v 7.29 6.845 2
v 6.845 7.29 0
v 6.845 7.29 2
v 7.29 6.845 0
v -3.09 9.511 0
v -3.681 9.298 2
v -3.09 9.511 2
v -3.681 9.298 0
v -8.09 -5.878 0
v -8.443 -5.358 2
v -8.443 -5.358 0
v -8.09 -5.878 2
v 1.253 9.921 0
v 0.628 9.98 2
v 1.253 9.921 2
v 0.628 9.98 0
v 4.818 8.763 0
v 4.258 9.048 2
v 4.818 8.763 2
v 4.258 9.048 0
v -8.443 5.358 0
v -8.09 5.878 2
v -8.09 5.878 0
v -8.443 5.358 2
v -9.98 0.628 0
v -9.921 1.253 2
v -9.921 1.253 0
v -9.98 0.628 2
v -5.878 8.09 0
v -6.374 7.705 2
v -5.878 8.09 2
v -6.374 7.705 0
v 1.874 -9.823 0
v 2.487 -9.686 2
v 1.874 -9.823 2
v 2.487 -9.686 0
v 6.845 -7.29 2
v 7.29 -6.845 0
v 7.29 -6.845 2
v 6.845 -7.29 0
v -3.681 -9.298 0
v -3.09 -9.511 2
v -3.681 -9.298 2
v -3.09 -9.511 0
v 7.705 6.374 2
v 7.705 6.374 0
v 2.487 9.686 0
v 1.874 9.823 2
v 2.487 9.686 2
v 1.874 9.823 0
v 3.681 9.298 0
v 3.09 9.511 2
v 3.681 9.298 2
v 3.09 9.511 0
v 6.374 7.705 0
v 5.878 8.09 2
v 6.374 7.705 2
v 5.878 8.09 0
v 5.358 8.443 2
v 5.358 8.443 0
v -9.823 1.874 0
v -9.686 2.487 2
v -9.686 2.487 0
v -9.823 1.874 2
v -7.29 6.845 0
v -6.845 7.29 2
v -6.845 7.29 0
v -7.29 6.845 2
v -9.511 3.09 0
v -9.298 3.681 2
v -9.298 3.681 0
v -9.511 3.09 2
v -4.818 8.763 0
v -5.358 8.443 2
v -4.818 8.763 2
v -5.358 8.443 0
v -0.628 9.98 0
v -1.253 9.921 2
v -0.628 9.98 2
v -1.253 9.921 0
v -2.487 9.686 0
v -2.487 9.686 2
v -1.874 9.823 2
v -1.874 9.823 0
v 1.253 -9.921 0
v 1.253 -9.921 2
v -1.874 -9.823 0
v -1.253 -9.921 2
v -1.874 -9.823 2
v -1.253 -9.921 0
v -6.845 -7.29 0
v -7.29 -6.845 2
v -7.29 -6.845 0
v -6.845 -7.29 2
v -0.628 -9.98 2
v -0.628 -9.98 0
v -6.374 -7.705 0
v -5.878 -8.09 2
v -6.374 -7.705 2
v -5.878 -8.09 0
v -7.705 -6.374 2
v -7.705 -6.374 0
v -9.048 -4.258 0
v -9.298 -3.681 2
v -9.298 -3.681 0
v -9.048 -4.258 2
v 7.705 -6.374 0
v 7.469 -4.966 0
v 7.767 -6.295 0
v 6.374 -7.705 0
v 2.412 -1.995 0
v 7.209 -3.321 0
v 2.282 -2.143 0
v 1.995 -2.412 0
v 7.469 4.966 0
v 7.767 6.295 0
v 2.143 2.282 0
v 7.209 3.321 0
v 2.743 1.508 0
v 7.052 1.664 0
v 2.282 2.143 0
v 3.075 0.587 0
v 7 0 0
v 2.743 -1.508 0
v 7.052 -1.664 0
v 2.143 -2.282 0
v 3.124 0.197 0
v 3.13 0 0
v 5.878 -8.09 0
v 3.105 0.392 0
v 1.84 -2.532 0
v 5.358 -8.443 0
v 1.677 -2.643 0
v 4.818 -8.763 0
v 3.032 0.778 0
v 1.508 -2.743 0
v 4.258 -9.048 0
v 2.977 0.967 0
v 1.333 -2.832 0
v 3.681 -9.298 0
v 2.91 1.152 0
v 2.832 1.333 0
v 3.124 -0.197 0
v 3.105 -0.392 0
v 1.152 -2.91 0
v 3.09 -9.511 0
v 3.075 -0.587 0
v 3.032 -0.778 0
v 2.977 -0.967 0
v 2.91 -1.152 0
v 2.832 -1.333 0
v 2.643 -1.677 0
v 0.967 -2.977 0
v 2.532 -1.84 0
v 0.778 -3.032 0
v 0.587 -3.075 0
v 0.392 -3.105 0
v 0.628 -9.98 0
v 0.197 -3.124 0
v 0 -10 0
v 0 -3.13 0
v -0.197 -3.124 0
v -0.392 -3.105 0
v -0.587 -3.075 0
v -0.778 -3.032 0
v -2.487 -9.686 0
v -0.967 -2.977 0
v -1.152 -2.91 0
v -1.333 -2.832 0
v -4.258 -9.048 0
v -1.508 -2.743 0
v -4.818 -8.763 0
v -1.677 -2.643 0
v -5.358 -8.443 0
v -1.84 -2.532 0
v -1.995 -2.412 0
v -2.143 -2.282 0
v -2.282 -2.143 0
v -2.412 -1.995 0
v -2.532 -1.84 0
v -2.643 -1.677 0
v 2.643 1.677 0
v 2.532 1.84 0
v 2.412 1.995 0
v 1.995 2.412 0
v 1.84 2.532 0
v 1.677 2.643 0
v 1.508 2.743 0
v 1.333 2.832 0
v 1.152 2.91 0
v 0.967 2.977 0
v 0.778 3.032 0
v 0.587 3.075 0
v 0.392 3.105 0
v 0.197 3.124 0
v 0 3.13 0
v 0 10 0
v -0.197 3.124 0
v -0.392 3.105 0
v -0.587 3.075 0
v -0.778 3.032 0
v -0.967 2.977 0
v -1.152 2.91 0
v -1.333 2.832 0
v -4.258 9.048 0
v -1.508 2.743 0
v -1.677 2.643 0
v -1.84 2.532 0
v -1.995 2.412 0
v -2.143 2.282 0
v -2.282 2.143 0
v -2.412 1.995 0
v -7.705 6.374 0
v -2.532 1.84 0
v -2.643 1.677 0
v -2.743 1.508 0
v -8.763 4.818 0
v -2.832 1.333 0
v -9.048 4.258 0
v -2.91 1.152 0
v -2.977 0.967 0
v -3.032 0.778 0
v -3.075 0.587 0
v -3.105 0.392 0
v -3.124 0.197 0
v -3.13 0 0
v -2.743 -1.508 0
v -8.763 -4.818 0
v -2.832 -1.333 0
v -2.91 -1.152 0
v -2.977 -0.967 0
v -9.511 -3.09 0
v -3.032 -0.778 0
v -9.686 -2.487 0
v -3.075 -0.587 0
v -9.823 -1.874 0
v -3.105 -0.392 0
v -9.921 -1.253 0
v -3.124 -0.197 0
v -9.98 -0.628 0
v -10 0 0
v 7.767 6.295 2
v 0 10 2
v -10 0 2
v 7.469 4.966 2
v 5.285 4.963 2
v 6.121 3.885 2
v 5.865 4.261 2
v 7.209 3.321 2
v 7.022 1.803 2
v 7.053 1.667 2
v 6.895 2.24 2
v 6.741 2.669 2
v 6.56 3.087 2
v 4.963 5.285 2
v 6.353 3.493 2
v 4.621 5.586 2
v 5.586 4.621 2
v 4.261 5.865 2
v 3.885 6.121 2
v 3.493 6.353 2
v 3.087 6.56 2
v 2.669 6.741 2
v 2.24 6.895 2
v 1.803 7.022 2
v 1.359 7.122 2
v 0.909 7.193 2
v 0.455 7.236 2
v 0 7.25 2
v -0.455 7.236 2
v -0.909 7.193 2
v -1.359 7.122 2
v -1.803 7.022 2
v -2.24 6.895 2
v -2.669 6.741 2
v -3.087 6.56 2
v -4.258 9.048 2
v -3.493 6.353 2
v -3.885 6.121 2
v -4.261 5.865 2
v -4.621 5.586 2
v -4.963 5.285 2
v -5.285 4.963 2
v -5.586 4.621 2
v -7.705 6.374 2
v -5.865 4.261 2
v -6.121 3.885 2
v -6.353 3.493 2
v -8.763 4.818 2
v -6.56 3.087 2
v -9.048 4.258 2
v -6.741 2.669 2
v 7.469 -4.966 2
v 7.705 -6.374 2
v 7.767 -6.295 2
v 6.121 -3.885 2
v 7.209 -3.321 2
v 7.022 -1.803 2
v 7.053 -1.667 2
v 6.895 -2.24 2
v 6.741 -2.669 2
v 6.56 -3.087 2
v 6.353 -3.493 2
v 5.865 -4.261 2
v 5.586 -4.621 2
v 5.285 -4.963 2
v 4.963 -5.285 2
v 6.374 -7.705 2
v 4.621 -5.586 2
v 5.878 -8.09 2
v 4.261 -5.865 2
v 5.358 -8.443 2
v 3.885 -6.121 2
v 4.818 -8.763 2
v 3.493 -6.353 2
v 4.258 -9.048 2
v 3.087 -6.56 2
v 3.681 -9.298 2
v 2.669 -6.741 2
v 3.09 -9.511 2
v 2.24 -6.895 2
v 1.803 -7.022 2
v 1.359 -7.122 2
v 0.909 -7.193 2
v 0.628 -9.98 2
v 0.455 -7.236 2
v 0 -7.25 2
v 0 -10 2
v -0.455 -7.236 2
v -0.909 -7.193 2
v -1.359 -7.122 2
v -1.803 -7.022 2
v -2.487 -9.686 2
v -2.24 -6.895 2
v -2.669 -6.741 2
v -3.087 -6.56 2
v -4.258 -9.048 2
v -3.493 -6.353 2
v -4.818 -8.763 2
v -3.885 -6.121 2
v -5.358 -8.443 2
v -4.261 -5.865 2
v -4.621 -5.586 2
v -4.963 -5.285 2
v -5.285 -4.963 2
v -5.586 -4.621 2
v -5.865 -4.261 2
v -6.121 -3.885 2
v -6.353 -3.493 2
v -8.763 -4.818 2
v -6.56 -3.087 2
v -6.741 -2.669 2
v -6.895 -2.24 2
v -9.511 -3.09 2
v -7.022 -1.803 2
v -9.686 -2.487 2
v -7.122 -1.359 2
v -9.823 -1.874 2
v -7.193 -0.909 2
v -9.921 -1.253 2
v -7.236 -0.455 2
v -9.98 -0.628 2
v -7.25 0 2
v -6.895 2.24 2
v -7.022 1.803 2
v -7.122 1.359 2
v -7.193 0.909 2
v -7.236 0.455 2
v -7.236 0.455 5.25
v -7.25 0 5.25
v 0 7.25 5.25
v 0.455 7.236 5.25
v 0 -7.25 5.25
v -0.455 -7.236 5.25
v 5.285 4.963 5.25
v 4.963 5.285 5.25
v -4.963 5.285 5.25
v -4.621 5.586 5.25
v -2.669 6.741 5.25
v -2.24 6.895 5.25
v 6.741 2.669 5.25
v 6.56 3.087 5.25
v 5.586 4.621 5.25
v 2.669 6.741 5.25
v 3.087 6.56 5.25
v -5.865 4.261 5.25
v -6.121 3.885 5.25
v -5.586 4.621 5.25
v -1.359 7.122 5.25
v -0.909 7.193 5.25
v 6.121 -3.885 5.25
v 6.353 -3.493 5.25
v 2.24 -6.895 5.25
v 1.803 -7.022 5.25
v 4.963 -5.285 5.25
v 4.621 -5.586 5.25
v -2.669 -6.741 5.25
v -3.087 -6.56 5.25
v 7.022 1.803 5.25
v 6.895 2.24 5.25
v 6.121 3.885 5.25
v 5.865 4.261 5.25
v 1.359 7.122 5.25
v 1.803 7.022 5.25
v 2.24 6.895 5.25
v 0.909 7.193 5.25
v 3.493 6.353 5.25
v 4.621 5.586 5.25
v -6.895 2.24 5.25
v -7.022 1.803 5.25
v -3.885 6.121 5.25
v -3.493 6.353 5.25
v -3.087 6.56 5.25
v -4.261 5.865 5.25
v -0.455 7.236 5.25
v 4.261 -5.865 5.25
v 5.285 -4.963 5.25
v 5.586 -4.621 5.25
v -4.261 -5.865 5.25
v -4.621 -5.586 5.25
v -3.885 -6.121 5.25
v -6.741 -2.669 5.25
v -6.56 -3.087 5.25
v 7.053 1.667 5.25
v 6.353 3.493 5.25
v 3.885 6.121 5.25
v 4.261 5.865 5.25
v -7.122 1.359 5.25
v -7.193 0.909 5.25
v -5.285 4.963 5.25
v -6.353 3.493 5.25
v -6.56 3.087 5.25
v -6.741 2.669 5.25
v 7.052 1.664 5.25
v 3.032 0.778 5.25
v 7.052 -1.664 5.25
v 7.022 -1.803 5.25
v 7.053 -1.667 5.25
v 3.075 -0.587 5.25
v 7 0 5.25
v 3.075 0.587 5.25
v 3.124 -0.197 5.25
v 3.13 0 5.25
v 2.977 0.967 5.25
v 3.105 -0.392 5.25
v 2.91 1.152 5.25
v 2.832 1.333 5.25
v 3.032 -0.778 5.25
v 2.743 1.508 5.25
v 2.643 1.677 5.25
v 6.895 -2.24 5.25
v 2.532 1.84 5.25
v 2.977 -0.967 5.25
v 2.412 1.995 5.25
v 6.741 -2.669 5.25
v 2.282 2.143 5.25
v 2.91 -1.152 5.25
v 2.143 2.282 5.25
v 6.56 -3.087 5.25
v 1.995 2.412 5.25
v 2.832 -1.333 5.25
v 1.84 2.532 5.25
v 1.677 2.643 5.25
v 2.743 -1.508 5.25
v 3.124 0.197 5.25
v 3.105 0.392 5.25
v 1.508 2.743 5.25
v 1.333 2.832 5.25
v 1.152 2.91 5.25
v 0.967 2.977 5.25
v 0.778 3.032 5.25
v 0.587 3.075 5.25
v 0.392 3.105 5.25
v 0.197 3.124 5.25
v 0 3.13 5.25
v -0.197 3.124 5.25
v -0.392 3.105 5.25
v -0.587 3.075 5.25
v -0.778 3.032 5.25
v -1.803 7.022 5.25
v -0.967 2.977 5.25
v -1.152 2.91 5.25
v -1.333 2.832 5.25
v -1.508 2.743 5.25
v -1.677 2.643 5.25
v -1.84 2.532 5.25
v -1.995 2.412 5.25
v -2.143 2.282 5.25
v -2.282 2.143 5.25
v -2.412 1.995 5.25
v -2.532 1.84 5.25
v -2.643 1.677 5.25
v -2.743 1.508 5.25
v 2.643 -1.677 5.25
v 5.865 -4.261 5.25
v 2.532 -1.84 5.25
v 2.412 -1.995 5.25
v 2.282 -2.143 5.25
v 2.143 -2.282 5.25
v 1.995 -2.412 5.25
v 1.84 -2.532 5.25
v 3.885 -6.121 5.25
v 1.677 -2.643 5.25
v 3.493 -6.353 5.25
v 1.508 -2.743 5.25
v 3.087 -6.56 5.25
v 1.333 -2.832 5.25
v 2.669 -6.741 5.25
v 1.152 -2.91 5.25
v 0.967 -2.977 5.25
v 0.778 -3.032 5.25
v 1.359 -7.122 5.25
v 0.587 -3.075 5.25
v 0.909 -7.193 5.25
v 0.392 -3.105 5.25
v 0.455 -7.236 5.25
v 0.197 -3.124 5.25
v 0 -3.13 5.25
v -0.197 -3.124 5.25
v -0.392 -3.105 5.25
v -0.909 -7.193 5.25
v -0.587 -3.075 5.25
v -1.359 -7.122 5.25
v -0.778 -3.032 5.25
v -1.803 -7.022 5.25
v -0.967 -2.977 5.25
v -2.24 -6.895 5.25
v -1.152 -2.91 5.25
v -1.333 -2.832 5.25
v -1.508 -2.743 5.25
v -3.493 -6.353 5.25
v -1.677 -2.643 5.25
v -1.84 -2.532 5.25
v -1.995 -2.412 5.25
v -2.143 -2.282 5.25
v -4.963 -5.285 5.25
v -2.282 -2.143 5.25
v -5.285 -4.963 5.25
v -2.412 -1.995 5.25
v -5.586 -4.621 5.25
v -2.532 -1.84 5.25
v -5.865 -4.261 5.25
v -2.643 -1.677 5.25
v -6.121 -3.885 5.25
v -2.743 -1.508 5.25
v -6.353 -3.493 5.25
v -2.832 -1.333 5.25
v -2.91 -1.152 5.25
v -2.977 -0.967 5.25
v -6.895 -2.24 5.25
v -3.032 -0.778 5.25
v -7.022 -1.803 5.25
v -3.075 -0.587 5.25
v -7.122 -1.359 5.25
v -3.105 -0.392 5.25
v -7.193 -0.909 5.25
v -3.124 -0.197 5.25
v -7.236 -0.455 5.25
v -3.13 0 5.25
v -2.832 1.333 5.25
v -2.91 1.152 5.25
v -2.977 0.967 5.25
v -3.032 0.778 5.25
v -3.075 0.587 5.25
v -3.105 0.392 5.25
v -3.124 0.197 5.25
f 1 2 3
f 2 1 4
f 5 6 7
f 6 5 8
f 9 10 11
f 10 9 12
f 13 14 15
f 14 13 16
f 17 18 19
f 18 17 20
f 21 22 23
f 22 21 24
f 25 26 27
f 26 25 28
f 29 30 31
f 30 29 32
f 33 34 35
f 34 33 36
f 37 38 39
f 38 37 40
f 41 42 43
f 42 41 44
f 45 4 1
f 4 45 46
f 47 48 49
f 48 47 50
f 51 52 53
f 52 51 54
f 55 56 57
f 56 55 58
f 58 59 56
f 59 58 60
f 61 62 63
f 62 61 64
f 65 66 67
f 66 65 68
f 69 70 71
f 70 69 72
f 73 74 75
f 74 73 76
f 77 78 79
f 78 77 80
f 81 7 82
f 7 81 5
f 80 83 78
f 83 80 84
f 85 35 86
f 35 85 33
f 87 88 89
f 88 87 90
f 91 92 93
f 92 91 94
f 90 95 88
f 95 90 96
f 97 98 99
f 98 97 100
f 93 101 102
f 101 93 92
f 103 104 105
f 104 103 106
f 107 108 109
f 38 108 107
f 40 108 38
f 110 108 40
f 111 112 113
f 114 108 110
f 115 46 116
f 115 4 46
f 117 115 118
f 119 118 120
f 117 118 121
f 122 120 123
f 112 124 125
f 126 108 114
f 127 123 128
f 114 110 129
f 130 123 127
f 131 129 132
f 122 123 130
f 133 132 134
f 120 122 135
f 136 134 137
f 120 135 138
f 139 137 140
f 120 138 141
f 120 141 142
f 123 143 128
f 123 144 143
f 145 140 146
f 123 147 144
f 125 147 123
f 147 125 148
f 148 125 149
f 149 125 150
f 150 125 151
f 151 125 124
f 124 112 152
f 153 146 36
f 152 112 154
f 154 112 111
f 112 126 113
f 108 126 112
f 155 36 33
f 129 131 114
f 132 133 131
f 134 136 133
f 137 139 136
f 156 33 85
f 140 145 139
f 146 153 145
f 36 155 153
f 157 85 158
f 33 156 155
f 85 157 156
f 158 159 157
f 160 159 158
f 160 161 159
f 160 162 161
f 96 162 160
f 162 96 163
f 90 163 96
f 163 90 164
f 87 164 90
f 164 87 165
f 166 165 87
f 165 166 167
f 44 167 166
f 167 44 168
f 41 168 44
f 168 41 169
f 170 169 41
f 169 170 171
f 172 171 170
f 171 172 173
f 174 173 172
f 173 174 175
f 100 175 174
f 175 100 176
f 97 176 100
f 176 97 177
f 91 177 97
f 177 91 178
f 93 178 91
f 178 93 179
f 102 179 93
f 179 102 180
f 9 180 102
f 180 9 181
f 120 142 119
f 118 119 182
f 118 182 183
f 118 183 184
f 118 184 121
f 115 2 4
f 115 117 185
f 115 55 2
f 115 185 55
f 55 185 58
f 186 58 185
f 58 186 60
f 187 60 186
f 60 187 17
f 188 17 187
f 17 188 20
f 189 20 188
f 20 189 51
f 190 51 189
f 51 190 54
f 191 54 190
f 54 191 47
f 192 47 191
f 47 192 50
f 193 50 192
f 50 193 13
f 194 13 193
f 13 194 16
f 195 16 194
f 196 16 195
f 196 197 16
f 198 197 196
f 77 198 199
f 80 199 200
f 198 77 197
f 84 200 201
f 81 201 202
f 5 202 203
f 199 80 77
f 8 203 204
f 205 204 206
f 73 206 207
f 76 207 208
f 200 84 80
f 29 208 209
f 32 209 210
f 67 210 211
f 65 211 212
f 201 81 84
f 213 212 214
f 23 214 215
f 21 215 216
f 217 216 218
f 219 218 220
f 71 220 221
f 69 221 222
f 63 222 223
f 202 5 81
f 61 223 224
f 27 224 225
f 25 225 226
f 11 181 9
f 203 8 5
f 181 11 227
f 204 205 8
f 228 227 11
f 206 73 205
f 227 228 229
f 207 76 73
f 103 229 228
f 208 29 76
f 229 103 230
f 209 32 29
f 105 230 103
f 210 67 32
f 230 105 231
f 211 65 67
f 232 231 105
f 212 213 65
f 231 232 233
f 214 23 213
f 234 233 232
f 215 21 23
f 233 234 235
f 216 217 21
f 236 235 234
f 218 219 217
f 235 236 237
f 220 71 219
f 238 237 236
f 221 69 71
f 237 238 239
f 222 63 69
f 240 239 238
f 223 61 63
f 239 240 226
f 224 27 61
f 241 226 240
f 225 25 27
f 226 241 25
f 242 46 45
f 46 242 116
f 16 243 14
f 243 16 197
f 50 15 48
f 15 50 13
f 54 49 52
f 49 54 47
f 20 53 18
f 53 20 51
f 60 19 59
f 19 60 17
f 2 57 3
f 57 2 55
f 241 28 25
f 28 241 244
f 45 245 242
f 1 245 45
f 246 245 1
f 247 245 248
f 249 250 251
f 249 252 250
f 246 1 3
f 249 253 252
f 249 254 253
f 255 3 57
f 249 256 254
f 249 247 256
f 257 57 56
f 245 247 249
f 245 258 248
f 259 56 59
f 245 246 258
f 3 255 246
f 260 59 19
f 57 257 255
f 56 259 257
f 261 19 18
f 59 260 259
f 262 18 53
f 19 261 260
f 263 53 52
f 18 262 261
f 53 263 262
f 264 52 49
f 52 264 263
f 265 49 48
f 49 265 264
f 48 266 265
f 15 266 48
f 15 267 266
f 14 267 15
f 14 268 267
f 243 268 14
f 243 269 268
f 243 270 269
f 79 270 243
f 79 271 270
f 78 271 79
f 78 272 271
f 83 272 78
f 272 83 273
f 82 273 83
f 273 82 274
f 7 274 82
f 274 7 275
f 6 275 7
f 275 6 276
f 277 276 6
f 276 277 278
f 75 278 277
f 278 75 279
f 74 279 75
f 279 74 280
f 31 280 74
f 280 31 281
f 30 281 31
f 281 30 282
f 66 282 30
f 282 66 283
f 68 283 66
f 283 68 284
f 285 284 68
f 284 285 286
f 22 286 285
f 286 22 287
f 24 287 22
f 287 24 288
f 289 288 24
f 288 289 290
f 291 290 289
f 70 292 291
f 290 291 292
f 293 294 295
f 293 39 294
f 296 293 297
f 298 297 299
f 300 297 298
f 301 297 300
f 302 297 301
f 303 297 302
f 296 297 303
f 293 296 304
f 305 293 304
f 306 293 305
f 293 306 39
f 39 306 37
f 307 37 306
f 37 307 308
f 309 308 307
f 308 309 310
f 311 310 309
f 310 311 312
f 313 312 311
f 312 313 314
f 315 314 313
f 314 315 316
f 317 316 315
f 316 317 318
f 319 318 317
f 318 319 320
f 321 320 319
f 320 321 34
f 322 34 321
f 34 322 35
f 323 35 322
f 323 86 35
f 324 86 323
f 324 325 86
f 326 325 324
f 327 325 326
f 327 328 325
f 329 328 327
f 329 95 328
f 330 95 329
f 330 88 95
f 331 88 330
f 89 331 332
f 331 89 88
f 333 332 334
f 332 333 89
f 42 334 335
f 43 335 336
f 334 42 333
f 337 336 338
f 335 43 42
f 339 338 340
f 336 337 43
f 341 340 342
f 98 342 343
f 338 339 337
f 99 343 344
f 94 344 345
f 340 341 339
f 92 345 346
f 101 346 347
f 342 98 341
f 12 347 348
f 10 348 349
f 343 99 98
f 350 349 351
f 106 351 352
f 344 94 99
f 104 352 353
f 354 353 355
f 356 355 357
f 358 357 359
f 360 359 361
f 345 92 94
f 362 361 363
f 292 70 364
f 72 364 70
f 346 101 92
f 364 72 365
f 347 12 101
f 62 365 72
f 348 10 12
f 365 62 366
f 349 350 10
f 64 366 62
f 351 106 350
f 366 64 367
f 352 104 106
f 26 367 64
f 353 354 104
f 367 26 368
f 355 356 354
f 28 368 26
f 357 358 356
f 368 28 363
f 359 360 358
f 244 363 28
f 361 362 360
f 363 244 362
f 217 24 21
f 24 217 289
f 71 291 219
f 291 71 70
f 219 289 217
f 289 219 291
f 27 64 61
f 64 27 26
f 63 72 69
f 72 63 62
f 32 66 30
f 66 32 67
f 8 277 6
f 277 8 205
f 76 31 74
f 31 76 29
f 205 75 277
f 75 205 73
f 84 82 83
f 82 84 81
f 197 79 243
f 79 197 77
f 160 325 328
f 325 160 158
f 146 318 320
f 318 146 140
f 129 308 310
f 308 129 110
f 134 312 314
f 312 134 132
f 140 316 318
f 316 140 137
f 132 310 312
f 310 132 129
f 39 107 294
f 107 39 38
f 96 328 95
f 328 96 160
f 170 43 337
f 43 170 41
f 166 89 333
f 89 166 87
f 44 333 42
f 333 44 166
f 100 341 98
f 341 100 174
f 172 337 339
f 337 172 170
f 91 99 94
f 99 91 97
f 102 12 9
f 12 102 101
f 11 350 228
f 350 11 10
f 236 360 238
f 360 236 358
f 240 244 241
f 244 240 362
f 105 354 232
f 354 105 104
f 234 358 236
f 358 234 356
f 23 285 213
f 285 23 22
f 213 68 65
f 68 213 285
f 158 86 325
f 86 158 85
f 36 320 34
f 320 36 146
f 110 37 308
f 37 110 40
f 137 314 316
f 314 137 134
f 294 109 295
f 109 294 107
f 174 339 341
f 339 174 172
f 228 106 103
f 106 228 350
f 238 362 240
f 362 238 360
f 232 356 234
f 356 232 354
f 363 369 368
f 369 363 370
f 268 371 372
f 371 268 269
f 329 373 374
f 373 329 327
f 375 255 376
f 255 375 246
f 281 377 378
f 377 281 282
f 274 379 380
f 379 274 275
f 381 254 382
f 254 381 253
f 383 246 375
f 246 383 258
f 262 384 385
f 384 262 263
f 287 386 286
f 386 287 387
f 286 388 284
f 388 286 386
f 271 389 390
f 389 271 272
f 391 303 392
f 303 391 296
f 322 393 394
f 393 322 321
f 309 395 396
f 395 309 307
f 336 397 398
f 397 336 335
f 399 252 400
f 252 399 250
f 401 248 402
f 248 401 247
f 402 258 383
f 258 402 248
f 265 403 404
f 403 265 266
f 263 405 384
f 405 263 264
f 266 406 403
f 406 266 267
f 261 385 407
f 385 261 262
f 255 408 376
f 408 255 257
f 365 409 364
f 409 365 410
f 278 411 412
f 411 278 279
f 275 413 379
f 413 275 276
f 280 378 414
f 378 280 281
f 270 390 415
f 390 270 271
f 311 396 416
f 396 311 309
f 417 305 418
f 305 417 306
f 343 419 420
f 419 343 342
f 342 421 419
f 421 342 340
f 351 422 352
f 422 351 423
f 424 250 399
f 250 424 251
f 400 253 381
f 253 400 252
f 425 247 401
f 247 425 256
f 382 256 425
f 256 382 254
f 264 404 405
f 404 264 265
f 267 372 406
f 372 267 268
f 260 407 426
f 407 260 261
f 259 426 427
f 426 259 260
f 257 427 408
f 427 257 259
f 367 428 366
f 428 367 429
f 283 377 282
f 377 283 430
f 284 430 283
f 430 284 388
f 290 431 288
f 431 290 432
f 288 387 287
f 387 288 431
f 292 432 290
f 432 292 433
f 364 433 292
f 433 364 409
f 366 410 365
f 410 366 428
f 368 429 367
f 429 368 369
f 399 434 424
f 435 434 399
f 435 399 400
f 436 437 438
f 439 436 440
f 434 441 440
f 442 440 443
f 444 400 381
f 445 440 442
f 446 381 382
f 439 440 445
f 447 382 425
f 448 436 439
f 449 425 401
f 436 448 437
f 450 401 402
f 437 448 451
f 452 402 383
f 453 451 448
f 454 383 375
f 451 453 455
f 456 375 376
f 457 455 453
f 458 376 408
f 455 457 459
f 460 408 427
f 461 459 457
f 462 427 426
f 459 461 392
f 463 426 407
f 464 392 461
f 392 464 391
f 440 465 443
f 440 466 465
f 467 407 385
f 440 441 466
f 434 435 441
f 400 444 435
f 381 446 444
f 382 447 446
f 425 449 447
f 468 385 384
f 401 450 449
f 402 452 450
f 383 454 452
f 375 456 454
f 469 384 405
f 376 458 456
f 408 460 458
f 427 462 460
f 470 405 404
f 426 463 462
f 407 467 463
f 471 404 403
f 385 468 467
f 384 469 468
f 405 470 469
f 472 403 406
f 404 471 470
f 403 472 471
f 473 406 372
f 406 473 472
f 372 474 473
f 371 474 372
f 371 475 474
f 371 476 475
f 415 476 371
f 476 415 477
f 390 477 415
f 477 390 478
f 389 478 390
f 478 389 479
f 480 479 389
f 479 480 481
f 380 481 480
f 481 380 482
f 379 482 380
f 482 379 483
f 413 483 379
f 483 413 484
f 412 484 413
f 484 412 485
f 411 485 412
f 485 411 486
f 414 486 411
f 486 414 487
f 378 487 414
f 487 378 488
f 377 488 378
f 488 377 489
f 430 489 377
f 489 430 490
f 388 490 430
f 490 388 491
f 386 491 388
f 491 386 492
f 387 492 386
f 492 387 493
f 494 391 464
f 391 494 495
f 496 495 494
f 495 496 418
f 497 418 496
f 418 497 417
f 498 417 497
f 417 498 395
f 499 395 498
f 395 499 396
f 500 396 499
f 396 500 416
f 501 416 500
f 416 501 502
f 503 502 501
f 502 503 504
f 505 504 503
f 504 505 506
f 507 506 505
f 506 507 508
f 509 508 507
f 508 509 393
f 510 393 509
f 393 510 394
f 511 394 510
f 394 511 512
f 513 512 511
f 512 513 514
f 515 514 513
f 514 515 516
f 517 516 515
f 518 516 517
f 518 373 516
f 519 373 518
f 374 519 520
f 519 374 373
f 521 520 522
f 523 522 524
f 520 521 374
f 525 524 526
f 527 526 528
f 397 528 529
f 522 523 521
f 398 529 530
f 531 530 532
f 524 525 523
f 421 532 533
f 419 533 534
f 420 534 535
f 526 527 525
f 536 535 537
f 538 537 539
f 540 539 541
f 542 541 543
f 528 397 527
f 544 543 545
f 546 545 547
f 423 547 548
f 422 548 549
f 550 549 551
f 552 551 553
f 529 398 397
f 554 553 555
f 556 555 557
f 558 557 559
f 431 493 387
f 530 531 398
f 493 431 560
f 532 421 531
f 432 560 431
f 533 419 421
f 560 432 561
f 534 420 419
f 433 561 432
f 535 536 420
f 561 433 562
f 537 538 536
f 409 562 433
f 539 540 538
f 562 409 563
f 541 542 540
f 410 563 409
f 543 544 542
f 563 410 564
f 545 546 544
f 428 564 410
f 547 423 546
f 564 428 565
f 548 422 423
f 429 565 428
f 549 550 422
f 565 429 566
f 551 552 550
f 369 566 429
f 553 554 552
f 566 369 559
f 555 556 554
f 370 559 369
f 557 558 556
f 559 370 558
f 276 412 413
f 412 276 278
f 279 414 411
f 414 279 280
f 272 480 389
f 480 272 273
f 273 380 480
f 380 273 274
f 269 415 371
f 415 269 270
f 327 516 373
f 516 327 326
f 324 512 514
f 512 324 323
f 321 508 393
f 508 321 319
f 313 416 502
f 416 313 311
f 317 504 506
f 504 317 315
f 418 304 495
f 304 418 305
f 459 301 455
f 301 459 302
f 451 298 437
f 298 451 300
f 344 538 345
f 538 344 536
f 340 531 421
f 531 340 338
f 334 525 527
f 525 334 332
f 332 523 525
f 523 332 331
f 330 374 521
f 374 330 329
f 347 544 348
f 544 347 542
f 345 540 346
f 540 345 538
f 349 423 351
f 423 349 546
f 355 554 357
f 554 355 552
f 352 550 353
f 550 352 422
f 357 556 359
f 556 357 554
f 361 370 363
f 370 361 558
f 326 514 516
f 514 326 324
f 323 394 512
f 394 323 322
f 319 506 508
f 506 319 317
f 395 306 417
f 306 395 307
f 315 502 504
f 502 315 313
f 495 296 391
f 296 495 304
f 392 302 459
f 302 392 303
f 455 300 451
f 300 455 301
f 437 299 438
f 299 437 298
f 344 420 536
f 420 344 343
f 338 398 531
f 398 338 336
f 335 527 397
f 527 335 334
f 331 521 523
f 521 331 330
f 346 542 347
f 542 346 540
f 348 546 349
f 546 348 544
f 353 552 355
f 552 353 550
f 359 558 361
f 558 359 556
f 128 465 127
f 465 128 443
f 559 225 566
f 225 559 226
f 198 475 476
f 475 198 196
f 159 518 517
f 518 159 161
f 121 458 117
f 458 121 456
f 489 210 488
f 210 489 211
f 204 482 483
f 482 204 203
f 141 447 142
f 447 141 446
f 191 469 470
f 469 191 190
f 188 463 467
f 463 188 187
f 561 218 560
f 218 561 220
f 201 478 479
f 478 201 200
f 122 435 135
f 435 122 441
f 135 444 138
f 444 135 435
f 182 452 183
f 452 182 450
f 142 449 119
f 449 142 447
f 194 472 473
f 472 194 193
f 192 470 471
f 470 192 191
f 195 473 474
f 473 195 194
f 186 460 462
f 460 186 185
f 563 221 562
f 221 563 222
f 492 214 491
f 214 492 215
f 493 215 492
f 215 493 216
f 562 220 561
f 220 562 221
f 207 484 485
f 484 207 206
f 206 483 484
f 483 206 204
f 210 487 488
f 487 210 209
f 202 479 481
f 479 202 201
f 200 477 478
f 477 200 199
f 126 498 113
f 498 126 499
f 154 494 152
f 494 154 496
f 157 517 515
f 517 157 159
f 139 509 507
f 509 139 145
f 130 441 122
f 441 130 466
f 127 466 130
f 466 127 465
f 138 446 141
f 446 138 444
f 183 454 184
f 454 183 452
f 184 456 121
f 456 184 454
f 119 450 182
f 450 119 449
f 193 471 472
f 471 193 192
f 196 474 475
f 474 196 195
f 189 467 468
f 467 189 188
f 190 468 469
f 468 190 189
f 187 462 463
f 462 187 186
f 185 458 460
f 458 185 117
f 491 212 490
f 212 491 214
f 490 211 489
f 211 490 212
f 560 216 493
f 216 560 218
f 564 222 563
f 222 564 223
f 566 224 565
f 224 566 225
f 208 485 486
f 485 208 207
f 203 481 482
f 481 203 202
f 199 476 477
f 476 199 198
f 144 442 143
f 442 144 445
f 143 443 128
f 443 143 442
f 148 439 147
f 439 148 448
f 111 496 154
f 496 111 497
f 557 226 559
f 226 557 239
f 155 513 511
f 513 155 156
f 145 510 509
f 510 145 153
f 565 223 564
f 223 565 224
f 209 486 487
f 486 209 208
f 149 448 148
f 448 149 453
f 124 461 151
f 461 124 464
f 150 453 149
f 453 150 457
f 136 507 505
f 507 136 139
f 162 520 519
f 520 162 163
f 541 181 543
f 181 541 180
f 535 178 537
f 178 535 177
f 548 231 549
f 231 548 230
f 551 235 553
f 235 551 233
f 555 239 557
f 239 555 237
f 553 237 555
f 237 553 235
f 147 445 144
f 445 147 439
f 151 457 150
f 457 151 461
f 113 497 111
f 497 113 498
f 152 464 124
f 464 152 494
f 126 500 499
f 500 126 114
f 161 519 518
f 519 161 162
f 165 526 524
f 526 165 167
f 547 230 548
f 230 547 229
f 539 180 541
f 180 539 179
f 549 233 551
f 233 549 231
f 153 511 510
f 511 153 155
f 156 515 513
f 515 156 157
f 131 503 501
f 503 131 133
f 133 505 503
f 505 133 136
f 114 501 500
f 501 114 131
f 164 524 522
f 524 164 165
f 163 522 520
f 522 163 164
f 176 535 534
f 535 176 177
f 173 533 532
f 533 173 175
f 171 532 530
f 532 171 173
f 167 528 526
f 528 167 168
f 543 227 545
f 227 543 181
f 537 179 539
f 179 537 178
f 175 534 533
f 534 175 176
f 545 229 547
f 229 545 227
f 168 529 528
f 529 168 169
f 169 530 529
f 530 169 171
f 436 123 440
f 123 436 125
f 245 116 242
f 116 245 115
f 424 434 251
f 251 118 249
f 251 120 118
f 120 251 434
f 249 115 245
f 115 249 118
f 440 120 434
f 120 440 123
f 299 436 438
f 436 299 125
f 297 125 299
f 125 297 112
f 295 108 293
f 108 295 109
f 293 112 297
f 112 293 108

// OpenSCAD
/***************************************************
*** (c) 2016 by saarbastler.de
***************************************************/

// Stepcraft Exhaust Adapter Washer
$fn=100;

difference()
{
  union()
  {
    cylinder(d=20, h=2);
    translate([0,0,2]) cylinder(d= 14.5, h=3.25);
  }
  
  translate([0,0,-1]) cylinder( d=6.26, h=20);
  
  translate([52/2+15/2,0,-1]) cylinder(d=53, h=15);
}
